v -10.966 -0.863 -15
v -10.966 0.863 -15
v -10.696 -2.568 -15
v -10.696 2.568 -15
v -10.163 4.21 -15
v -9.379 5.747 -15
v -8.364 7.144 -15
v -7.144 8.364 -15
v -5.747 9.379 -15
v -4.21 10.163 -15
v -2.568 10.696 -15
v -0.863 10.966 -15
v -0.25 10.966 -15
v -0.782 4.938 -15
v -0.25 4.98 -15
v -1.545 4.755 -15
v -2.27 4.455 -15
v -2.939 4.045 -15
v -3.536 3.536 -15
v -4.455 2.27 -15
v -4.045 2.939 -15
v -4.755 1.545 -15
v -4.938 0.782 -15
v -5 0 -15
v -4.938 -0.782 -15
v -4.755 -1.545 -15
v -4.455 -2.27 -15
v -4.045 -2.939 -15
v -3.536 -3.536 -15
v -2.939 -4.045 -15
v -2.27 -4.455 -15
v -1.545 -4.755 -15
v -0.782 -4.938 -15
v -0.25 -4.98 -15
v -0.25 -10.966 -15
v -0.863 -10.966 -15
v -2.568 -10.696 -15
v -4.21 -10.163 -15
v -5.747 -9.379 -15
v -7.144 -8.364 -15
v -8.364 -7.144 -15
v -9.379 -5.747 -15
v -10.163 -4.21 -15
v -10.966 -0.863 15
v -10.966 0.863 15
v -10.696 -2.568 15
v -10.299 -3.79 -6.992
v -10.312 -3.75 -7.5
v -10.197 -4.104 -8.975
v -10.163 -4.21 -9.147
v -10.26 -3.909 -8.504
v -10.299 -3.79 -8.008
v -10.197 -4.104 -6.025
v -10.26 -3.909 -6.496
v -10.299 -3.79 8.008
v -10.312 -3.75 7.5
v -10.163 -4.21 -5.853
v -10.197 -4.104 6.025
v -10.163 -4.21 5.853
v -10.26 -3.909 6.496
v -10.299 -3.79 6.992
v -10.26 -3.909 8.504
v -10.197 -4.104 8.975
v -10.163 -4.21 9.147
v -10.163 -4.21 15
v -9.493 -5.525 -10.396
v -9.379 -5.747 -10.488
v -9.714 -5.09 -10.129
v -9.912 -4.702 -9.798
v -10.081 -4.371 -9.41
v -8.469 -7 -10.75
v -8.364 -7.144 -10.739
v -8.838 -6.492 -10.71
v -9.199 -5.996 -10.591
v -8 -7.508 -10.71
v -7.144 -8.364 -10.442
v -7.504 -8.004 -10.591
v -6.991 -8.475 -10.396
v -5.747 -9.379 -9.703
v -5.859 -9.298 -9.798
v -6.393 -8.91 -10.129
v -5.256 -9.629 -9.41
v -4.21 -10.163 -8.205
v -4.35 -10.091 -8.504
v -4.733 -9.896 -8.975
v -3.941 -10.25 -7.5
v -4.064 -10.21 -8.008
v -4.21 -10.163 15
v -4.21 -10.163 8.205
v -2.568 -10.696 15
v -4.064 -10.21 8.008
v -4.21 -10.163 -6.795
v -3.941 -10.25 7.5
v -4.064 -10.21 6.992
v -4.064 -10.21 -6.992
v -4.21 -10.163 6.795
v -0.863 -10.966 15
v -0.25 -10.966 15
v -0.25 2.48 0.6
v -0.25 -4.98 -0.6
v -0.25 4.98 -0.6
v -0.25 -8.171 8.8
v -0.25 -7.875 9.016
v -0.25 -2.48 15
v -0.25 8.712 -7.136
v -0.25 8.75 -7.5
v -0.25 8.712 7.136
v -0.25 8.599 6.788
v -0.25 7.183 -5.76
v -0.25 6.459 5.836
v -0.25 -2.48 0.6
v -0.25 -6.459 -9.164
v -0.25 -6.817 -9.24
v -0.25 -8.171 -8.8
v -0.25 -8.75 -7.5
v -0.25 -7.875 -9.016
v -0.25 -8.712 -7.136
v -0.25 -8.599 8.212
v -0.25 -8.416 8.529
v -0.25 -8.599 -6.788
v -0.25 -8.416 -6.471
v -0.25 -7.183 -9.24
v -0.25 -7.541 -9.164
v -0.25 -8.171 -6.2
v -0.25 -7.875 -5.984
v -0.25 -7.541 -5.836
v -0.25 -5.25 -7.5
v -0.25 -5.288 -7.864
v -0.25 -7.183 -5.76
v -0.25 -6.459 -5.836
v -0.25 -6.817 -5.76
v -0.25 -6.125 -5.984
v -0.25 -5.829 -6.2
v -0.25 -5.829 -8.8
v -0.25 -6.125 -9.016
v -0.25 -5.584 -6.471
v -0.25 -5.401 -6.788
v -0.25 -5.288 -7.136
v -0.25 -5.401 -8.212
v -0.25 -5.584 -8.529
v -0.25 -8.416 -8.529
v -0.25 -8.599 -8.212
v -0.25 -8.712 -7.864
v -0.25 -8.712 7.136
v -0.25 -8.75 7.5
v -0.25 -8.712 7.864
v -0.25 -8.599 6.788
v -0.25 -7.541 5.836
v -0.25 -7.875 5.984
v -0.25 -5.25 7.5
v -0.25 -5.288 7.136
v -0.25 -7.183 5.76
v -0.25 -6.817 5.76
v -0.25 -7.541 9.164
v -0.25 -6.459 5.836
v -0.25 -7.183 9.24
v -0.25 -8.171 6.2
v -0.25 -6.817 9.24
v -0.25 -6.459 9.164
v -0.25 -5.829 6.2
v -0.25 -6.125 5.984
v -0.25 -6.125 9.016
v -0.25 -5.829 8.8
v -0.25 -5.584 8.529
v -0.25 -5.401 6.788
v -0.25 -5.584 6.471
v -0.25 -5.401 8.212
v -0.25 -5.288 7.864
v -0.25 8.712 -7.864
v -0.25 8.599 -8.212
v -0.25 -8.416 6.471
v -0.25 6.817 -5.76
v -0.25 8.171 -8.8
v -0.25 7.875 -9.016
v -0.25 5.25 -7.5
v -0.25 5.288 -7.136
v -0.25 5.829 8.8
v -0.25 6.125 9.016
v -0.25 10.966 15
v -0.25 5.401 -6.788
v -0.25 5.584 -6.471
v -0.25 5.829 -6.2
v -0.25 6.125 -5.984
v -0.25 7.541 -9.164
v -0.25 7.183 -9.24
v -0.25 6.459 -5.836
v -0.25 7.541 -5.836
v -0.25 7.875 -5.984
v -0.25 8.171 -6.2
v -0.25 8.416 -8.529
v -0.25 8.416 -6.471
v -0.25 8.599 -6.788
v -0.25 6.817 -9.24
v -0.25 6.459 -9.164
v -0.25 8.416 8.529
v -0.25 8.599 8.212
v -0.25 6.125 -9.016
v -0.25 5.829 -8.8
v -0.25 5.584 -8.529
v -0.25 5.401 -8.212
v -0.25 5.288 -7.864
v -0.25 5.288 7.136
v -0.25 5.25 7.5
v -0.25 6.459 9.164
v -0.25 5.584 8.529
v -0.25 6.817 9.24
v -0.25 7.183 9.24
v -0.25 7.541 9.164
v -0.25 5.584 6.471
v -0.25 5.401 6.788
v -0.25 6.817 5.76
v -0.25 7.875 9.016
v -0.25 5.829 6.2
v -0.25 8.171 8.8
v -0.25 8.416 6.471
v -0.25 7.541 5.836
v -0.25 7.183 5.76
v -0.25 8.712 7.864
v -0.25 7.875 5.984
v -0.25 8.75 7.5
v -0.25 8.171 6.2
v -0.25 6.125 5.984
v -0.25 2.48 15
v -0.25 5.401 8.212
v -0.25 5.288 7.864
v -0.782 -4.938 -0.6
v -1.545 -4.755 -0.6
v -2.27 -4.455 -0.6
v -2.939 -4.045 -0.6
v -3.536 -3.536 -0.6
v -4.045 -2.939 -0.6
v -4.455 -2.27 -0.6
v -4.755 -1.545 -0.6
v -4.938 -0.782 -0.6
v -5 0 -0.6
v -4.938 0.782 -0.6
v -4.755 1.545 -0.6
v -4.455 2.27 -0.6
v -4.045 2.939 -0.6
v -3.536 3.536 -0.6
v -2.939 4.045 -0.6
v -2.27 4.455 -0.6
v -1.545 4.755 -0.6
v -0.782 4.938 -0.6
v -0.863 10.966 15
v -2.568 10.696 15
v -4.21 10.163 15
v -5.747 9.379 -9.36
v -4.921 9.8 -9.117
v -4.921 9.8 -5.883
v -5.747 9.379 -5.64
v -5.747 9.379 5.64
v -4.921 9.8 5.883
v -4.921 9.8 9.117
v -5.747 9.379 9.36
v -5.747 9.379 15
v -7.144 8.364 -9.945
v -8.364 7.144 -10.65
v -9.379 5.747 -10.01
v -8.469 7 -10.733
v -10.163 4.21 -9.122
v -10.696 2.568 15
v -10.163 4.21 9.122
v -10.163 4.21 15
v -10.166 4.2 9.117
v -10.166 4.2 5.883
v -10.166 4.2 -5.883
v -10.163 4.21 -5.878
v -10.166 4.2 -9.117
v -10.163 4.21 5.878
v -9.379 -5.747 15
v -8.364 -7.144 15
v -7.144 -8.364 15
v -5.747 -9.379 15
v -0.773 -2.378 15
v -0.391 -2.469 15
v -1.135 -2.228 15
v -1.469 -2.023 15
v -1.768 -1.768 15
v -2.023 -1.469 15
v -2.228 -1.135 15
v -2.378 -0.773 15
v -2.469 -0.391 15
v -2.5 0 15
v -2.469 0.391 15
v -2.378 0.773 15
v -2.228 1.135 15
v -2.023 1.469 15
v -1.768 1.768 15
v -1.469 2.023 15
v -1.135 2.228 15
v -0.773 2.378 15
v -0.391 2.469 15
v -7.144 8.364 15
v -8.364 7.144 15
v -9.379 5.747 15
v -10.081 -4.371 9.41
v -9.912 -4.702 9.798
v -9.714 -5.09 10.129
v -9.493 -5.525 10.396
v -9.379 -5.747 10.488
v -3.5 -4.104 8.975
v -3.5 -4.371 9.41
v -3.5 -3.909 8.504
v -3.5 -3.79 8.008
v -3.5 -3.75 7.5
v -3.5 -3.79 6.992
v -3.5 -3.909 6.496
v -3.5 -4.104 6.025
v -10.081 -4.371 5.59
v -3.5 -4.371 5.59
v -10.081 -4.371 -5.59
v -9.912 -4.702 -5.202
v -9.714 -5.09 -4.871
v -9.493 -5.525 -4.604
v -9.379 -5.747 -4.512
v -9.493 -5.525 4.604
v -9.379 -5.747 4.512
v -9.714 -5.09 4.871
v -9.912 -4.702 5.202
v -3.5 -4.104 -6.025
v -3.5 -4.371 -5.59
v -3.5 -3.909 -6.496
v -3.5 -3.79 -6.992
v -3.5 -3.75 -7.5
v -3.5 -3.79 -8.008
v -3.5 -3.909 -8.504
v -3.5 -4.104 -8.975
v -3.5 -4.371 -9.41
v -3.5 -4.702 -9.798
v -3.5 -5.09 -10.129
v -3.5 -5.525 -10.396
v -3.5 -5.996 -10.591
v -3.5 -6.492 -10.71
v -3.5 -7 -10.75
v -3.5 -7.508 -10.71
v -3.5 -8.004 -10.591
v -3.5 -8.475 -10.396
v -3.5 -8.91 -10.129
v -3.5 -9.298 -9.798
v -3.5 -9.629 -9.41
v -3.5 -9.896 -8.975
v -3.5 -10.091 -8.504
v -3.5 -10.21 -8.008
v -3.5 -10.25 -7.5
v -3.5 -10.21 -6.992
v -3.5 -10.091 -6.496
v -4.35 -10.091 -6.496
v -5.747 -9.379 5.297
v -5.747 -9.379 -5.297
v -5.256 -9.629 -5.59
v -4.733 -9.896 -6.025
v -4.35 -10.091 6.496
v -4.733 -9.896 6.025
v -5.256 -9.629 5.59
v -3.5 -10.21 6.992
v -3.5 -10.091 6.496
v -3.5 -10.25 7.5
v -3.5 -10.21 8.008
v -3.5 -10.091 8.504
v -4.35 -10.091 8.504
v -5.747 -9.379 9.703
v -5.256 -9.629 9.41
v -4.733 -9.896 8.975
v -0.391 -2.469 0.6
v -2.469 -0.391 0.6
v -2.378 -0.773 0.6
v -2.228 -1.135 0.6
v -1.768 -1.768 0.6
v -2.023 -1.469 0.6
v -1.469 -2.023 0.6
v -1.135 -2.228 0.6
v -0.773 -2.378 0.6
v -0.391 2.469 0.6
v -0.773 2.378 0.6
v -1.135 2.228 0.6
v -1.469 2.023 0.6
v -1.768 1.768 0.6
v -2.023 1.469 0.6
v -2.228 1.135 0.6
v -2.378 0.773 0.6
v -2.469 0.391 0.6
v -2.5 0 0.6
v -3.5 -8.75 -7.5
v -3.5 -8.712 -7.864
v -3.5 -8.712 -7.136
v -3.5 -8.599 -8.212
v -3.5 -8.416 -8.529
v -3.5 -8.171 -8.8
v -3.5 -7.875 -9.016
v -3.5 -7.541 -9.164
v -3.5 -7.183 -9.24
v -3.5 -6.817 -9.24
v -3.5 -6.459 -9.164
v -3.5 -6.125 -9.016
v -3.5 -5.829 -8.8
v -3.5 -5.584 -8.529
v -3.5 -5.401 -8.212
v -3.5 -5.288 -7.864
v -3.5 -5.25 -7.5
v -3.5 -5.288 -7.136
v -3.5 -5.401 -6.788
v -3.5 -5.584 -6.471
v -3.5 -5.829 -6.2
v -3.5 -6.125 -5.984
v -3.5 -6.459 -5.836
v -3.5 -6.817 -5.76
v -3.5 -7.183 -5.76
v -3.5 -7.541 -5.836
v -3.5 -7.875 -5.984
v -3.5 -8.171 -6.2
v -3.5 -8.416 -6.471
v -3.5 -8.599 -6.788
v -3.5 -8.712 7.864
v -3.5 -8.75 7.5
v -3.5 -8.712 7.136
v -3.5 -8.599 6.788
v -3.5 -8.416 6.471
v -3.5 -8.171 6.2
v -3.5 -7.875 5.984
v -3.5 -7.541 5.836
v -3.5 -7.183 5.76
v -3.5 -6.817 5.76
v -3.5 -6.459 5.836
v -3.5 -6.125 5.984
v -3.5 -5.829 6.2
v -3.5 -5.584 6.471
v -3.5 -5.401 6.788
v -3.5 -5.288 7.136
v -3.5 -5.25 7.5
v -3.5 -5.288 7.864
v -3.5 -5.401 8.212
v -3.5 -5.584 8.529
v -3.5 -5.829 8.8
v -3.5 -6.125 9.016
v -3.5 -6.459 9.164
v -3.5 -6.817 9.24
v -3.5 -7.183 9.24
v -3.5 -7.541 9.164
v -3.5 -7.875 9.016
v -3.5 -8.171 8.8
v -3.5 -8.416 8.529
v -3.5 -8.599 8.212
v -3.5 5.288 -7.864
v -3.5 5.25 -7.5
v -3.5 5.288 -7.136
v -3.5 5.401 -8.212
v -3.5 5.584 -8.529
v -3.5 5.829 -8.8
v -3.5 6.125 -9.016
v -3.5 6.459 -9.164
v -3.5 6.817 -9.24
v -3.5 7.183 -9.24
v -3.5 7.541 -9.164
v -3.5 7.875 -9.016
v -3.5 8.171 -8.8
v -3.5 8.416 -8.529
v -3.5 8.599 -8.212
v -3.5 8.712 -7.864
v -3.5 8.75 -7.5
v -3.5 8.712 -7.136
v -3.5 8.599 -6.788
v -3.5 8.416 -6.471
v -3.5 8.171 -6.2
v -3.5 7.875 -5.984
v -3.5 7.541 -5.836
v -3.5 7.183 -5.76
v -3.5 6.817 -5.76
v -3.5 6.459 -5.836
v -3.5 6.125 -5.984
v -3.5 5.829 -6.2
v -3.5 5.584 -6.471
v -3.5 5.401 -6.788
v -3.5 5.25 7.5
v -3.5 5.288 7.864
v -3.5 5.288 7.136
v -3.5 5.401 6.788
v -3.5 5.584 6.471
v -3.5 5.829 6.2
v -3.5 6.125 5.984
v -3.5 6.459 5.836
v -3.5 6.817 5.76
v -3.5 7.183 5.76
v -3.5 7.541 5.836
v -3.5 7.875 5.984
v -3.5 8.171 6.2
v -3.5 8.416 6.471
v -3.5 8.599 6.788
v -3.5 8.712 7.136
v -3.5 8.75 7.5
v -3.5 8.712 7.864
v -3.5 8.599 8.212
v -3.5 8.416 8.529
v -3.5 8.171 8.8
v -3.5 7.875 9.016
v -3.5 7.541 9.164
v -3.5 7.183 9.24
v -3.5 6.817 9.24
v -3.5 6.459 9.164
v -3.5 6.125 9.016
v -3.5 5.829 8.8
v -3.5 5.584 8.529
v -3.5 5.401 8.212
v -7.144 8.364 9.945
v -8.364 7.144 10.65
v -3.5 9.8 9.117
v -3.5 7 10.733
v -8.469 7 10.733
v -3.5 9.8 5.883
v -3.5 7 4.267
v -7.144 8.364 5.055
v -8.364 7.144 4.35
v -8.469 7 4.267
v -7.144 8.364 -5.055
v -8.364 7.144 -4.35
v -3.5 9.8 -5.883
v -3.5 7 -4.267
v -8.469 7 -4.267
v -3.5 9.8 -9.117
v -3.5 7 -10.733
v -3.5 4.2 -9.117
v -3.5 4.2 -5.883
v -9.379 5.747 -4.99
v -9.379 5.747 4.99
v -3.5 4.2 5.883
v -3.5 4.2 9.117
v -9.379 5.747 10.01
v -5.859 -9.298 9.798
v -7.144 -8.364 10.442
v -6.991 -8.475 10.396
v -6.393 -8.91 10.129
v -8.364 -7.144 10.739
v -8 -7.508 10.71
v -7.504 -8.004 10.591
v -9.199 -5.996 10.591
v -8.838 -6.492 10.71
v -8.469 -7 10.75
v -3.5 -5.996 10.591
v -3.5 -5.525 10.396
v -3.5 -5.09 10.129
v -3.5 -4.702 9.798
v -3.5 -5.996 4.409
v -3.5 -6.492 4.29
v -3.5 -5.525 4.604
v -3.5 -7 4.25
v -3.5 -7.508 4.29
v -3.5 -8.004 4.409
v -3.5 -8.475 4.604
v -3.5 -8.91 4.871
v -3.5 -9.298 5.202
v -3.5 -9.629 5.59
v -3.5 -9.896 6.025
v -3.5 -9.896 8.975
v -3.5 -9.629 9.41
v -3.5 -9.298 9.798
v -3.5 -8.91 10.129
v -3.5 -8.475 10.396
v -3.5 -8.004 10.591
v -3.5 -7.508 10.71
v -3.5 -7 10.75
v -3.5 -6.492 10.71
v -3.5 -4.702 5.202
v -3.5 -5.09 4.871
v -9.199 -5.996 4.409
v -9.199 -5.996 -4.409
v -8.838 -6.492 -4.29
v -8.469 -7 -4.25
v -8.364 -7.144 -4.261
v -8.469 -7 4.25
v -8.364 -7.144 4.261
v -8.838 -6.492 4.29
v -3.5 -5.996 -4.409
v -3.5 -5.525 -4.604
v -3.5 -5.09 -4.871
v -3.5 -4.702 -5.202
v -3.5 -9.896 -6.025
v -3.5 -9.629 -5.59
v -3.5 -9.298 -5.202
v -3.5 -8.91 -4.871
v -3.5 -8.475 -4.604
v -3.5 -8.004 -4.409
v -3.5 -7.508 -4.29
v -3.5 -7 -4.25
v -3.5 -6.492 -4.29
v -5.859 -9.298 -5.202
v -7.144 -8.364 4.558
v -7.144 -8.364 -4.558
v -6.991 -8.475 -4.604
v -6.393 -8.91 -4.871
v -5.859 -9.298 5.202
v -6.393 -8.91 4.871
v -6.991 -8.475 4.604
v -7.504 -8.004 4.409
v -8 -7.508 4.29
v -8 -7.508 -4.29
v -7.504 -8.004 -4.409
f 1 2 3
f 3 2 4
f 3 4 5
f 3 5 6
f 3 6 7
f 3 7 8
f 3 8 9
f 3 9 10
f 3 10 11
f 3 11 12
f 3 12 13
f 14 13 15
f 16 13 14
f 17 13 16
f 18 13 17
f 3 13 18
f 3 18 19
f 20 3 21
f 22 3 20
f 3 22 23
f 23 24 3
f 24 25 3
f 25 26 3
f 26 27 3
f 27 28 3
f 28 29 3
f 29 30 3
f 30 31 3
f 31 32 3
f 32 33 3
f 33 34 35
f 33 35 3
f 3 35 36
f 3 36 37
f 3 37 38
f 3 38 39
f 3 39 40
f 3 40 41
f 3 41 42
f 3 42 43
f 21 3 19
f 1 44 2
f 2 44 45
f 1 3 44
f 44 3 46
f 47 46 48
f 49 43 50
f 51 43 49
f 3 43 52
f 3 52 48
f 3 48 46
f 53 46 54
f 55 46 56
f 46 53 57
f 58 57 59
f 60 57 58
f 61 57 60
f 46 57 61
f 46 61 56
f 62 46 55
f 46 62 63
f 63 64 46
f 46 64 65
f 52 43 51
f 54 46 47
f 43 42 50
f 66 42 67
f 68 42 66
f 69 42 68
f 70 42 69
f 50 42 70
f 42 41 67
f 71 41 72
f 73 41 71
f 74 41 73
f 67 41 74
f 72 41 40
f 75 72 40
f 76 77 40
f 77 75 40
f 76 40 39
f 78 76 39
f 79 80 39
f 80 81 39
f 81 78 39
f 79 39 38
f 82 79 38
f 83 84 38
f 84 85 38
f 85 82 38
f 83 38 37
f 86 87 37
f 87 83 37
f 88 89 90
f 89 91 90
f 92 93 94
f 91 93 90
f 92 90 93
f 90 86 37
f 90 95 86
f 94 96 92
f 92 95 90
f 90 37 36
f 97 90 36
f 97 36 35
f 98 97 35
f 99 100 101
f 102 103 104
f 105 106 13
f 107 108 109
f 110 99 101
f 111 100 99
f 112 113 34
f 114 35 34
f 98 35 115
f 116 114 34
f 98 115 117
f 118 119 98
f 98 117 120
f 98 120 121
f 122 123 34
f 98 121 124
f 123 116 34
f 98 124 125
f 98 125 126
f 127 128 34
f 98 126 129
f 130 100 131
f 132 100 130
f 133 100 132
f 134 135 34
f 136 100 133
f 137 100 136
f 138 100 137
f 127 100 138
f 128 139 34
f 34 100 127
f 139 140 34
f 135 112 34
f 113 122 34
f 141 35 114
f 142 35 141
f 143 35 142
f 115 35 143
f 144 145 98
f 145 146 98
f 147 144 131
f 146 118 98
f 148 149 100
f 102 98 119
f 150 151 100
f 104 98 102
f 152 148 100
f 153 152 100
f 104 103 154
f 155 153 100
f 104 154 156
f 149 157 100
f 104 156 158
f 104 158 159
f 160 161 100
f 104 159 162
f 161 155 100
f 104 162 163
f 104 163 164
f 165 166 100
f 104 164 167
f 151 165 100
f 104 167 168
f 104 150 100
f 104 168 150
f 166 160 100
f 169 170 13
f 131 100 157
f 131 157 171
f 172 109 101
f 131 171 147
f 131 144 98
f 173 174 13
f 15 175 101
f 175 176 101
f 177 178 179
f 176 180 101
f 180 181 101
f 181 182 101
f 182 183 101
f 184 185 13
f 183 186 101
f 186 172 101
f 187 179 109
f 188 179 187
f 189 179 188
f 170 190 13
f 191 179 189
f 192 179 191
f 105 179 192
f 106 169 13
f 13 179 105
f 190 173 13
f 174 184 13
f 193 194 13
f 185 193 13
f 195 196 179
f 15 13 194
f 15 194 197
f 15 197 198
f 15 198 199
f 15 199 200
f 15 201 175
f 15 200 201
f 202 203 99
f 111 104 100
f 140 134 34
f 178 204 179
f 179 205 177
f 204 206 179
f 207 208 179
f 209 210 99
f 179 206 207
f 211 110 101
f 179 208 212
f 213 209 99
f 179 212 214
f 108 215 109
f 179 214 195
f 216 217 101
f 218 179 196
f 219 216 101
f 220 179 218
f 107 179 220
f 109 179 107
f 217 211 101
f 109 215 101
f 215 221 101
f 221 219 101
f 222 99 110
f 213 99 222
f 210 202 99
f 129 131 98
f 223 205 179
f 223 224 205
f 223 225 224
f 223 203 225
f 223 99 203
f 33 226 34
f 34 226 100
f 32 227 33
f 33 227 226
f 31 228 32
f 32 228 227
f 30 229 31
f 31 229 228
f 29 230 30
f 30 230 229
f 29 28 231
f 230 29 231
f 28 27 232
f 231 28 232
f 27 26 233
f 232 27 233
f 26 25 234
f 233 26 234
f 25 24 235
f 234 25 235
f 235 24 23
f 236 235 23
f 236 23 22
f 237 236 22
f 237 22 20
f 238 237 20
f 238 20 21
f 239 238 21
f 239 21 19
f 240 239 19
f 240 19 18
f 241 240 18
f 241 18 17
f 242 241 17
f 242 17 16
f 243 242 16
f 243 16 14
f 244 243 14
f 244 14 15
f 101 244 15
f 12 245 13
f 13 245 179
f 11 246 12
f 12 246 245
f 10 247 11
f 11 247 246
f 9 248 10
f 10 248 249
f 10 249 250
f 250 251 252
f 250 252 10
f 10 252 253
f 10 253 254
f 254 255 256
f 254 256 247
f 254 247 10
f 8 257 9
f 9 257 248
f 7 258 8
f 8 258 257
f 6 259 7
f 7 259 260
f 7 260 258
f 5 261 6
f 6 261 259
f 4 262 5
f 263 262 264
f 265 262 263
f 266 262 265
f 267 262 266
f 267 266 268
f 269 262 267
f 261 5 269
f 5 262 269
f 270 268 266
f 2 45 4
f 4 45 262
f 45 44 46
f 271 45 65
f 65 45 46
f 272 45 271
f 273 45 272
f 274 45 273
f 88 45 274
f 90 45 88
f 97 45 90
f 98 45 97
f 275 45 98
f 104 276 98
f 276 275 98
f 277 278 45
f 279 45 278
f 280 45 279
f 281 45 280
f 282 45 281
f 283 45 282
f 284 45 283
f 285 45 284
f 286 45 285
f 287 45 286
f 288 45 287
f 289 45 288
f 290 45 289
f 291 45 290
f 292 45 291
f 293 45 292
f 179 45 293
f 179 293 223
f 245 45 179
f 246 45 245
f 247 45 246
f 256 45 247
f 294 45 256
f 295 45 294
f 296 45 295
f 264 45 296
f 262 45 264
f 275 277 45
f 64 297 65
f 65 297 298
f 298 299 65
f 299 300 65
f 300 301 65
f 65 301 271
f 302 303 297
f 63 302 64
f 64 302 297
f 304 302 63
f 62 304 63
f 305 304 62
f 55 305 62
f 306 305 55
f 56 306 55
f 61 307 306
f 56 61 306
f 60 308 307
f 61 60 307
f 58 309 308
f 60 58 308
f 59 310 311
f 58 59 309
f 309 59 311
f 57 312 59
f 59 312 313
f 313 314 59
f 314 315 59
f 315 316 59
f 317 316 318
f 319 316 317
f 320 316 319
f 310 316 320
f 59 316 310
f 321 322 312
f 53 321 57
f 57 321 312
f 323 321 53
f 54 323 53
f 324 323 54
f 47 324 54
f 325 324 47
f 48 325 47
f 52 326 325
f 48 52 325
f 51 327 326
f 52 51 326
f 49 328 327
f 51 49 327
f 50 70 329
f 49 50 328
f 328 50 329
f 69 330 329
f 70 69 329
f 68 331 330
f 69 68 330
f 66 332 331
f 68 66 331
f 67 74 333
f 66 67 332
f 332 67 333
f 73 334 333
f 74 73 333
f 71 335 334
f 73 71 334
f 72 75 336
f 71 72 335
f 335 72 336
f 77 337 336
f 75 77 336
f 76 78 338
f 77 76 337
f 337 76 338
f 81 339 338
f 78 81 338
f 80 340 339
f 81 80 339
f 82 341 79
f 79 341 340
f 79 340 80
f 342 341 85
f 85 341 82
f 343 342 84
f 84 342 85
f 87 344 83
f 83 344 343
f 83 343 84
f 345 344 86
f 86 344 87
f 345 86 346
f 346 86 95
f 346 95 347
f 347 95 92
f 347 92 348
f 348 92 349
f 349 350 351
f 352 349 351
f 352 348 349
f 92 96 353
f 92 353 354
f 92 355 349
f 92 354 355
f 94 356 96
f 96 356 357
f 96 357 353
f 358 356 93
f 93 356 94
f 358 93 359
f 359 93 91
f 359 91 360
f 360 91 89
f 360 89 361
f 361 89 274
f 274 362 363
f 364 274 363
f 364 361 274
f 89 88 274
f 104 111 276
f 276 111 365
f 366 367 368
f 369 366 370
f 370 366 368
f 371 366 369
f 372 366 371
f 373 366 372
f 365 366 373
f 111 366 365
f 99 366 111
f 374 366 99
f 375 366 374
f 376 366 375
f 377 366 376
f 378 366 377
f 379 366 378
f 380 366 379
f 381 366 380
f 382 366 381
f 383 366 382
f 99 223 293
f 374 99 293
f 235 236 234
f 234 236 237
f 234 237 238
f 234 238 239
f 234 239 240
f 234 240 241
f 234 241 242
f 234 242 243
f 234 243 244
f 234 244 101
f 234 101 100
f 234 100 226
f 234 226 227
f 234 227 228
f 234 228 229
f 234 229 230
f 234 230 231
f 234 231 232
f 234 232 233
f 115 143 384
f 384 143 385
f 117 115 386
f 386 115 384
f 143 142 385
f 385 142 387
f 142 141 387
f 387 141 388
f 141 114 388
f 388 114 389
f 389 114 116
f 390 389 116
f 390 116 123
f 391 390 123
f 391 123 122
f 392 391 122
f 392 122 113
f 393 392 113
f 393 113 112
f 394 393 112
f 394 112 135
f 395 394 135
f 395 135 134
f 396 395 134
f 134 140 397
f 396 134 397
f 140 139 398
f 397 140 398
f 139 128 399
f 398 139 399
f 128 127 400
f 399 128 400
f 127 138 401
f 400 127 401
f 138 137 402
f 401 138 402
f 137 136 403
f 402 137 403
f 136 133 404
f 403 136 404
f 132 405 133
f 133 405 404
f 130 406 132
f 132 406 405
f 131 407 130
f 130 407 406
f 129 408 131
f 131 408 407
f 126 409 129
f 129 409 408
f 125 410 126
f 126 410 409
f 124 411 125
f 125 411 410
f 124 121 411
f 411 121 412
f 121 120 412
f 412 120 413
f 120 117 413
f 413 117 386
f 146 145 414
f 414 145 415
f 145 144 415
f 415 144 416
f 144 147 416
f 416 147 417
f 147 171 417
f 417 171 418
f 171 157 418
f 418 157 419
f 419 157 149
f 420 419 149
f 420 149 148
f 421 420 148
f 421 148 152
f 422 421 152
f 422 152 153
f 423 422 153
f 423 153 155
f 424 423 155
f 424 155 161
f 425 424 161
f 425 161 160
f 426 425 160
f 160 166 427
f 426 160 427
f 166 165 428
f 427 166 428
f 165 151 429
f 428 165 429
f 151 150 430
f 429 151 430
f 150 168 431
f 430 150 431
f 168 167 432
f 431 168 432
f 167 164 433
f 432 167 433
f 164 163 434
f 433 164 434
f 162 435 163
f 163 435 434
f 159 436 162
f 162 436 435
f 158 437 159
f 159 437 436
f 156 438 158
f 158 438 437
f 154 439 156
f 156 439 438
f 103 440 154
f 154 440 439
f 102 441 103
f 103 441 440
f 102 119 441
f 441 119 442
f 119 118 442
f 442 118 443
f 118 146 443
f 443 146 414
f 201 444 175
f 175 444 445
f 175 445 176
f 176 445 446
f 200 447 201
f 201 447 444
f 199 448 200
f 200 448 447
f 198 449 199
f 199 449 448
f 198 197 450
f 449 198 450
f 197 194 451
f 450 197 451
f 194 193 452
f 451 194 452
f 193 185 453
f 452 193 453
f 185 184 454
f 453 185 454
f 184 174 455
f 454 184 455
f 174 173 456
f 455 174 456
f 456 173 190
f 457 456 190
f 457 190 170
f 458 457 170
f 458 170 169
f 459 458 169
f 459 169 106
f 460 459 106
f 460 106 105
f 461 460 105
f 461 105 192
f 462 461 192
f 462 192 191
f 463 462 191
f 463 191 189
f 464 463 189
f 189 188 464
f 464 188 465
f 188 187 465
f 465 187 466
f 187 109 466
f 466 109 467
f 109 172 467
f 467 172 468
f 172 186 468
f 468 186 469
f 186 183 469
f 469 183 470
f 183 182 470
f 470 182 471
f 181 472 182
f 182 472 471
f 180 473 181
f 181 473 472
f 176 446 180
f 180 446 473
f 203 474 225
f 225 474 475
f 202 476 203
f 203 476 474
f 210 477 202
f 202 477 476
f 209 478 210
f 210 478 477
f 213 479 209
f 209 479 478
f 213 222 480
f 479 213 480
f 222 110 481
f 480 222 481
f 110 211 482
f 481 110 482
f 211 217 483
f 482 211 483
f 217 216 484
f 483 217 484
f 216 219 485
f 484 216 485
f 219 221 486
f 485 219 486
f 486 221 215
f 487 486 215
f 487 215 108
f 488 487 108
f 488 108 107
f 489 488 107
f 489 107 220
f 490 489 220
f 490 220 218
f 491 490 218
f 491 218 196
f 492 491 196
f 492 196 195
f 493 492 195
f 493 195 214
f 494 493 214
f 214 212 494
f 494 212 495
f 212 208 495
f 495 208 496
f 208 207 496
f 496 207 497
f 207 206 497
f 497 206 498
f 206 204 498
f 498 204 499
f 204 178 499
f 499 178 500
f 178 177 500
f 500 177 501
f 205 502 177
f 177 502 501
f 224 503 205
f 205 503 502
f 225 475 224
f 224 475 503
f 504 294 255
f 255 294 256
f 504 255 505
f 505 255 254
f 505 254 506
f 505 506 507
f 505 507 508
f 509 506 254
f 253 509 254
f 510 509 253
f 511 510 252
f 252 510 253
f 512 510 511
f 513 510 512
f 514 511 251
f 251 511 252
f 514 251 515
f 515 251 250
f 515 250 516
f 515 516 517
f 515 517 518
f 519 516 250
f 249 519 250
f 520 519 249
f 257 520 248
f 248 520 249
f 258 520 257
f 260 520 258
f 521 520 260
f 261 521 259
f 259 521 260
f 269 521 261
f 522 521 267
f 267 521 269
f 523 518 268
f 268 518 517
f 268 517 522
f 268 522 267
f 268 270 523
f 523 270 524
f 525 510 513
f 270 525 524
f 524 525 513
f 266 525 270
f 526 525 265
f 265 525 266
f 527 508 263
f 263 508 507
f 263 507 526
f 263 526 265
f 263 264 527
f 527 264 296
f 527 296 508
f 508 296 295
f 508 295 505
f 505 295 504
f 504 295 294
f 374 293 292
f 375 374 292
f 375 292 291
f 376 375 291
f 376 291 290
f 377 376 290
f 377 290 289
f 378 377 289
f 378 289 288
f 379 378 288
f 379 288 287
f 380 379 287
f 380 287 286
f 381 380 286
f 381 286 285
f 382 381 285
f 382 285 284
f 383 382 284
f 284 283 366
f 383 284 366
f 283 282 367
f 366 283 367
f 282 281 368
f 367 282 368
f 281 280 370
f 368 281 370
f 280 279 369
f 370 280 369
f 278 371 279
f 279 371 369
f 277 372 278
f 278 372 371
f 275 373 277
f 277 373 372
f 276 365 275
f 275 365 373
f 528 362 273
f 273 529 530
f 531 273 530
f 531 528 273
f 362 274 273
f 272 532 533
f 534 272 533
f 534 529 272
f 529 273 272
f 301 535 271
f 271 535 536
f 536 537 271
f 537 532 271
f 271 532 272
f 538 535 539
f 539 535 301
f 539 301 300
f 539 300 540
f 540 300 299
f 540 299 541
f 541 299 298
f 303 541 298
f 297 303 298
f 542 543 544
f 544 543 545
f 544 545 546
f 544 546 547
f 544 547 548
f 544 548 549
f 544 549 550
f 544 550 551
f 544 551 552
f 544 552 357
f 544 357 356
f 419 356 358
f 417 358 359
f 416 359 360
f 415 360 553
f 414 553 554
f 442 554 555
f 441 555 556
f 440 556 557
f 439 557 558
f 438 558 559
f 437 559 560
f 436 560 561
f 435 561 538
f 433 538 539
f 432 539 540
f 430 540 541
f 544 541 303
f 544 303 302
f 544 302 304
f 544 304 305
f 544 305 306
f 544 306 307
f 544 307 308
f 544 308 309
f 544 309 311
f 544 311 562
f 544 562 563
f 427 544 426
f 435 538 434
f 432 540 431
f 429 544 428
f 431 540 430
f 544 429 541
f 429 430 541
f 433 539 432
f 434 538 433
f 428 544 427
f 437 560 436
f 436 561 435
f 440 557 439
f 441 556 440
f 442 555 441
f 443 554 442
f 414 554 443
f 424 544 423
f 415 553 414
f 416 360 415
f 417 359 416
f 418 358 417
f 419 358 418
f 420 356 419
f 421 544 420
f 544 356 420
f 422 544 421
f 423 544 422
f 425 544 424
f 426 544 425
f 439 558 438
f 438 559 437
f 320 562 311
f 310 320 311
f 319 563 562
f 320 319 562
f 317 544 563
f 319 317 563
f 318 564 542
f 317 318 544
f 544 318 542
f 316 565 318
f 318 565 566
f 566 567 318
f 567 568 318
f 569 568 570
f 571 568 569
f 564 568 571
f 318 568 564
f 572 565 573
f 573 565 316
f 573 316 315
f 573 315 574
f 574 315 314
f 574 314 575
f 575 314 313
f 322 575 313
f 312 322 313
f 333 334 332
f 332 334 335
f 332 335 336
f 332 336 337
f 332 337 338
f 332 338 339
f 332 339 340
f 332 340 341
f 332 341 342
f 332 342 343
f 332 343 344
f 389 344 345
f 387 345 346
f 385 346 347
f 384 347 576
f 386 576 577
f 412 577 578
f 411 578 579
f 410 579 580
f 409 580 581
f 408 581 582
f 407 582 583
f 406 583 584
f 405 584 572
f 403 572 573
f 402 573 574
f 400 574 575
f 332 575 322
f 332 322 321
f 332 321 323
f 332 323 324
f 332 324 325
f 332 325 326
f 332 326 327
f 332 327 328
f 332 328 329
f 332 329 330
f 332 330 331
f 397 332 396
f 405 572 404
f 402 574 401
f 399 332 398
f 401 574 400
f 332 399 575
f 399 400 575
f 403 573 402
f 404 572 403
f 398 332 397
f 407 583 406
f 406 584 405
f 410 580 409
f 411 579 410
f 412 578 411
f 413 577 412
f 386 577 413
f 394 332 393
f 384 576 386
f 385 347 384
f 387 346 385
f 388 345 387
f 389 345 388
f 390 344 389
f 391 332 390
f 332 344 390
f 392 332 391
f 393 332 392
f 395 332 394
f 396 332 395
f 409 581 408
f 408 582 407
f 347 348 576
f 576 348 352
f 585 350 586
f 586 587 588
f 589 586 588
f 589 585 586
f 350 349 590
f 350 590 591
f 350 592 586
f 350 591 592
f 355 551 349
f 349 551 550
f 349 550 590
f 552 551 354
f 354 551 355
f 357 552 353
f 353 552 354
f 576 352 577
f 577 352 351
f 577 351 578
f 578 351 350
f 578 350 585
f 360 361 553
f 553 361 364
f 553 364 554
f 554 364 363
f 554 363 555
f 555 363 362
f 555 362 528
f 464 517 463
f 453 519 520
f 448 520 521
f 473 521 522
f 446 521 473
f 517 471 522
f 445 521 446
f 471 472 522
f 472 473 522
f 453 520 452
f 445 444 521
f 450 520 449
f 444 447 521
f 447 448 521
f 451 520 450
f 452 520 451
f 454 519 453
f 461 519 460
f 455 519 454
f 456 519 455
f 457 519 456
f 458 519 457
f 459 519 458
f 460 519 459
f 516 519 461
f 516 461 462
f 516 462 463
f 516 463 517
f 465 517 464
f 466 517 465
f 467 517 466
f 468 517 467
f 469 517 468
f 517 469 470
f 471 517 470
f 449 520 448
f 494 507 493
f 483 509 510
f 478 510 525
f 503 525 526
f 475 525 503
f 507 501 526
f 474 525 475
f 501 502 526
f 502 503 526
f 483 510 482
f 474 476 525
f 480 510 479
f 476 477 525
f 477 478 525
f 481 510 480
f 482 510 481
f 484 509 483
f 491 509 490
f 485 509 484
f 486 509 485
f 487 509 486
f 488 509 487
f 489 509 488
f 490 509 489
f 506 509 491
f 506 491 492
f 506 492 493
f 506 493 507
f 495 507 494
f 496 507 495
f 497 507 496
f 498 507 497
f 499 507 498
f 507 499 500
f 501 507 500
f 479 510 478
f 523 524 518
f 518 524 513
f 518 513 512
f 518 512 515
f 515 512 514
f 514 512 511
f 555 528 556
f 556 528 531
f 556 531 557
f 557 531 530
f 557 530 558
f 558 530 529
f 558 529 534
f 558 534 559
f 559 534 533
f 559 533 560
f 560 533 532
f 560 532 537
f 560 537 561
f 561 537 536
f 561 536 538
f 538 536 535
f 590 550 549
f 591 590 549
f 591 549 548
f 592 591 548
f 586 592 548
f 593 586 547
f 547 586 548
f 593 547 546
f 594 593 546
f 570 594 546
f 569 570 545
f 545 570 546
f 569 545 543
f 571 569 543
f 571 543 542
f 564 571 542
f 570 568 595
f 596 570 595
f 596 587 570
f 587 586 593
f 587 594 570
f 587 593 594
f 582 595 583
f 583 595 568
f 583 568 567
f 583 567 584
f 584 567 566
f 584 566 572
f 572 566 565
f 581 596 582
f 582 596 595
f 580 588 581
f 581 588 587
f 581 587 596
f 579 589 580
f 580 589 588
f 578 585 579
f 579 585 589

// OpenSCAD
L=30;
W=22;
d1=5;
d2=10;
wall=1.2;
space=0.5;
dist=7;


difference()
{
union()
{
difference()
{
	rotate(180/8)
		cylinder(h=L, r=W/2, $fn=40, center=true);
	for(z=[-1,1])
	for(i=[-1,1])
		rotate([0,0,90*i])
		translate([7,0,L/4*z])
		rotate([90,0,0])
			m3_screw();
}
//translate([-dist/2,-W/2,-L/2])
//	cube(size=[0.25,W,L]);
}
	translate([-space/2, -W/2-1, -L/2-1])
		cube([W/2+1, W+2, L+2]);
	translate([0,0,wall/2])
		cylinder(h=L/2, r=d1/2, $fn=40);
	mirror([0,0,1])
	translate([0,0,wall/2])
		cylinder(h=L/2, r=d2/2, $fn=40);
}

module m3_screw()
{
	ext=15;
	union()
	{
		cylinder(h=dist+2*ext, r=3.5/2, center=true,$fn=30);
		translate([0,0,dist/2])
			cylinder(h=ext,r=6.5/2,$fn=40);
		translate([0,0,-dist/2-ext])
		rotate([0,0,180/6])
			cylinder(h=ext, r=(5.5+0.1)/2/cos(180/6), $fn=6);
	}
}
